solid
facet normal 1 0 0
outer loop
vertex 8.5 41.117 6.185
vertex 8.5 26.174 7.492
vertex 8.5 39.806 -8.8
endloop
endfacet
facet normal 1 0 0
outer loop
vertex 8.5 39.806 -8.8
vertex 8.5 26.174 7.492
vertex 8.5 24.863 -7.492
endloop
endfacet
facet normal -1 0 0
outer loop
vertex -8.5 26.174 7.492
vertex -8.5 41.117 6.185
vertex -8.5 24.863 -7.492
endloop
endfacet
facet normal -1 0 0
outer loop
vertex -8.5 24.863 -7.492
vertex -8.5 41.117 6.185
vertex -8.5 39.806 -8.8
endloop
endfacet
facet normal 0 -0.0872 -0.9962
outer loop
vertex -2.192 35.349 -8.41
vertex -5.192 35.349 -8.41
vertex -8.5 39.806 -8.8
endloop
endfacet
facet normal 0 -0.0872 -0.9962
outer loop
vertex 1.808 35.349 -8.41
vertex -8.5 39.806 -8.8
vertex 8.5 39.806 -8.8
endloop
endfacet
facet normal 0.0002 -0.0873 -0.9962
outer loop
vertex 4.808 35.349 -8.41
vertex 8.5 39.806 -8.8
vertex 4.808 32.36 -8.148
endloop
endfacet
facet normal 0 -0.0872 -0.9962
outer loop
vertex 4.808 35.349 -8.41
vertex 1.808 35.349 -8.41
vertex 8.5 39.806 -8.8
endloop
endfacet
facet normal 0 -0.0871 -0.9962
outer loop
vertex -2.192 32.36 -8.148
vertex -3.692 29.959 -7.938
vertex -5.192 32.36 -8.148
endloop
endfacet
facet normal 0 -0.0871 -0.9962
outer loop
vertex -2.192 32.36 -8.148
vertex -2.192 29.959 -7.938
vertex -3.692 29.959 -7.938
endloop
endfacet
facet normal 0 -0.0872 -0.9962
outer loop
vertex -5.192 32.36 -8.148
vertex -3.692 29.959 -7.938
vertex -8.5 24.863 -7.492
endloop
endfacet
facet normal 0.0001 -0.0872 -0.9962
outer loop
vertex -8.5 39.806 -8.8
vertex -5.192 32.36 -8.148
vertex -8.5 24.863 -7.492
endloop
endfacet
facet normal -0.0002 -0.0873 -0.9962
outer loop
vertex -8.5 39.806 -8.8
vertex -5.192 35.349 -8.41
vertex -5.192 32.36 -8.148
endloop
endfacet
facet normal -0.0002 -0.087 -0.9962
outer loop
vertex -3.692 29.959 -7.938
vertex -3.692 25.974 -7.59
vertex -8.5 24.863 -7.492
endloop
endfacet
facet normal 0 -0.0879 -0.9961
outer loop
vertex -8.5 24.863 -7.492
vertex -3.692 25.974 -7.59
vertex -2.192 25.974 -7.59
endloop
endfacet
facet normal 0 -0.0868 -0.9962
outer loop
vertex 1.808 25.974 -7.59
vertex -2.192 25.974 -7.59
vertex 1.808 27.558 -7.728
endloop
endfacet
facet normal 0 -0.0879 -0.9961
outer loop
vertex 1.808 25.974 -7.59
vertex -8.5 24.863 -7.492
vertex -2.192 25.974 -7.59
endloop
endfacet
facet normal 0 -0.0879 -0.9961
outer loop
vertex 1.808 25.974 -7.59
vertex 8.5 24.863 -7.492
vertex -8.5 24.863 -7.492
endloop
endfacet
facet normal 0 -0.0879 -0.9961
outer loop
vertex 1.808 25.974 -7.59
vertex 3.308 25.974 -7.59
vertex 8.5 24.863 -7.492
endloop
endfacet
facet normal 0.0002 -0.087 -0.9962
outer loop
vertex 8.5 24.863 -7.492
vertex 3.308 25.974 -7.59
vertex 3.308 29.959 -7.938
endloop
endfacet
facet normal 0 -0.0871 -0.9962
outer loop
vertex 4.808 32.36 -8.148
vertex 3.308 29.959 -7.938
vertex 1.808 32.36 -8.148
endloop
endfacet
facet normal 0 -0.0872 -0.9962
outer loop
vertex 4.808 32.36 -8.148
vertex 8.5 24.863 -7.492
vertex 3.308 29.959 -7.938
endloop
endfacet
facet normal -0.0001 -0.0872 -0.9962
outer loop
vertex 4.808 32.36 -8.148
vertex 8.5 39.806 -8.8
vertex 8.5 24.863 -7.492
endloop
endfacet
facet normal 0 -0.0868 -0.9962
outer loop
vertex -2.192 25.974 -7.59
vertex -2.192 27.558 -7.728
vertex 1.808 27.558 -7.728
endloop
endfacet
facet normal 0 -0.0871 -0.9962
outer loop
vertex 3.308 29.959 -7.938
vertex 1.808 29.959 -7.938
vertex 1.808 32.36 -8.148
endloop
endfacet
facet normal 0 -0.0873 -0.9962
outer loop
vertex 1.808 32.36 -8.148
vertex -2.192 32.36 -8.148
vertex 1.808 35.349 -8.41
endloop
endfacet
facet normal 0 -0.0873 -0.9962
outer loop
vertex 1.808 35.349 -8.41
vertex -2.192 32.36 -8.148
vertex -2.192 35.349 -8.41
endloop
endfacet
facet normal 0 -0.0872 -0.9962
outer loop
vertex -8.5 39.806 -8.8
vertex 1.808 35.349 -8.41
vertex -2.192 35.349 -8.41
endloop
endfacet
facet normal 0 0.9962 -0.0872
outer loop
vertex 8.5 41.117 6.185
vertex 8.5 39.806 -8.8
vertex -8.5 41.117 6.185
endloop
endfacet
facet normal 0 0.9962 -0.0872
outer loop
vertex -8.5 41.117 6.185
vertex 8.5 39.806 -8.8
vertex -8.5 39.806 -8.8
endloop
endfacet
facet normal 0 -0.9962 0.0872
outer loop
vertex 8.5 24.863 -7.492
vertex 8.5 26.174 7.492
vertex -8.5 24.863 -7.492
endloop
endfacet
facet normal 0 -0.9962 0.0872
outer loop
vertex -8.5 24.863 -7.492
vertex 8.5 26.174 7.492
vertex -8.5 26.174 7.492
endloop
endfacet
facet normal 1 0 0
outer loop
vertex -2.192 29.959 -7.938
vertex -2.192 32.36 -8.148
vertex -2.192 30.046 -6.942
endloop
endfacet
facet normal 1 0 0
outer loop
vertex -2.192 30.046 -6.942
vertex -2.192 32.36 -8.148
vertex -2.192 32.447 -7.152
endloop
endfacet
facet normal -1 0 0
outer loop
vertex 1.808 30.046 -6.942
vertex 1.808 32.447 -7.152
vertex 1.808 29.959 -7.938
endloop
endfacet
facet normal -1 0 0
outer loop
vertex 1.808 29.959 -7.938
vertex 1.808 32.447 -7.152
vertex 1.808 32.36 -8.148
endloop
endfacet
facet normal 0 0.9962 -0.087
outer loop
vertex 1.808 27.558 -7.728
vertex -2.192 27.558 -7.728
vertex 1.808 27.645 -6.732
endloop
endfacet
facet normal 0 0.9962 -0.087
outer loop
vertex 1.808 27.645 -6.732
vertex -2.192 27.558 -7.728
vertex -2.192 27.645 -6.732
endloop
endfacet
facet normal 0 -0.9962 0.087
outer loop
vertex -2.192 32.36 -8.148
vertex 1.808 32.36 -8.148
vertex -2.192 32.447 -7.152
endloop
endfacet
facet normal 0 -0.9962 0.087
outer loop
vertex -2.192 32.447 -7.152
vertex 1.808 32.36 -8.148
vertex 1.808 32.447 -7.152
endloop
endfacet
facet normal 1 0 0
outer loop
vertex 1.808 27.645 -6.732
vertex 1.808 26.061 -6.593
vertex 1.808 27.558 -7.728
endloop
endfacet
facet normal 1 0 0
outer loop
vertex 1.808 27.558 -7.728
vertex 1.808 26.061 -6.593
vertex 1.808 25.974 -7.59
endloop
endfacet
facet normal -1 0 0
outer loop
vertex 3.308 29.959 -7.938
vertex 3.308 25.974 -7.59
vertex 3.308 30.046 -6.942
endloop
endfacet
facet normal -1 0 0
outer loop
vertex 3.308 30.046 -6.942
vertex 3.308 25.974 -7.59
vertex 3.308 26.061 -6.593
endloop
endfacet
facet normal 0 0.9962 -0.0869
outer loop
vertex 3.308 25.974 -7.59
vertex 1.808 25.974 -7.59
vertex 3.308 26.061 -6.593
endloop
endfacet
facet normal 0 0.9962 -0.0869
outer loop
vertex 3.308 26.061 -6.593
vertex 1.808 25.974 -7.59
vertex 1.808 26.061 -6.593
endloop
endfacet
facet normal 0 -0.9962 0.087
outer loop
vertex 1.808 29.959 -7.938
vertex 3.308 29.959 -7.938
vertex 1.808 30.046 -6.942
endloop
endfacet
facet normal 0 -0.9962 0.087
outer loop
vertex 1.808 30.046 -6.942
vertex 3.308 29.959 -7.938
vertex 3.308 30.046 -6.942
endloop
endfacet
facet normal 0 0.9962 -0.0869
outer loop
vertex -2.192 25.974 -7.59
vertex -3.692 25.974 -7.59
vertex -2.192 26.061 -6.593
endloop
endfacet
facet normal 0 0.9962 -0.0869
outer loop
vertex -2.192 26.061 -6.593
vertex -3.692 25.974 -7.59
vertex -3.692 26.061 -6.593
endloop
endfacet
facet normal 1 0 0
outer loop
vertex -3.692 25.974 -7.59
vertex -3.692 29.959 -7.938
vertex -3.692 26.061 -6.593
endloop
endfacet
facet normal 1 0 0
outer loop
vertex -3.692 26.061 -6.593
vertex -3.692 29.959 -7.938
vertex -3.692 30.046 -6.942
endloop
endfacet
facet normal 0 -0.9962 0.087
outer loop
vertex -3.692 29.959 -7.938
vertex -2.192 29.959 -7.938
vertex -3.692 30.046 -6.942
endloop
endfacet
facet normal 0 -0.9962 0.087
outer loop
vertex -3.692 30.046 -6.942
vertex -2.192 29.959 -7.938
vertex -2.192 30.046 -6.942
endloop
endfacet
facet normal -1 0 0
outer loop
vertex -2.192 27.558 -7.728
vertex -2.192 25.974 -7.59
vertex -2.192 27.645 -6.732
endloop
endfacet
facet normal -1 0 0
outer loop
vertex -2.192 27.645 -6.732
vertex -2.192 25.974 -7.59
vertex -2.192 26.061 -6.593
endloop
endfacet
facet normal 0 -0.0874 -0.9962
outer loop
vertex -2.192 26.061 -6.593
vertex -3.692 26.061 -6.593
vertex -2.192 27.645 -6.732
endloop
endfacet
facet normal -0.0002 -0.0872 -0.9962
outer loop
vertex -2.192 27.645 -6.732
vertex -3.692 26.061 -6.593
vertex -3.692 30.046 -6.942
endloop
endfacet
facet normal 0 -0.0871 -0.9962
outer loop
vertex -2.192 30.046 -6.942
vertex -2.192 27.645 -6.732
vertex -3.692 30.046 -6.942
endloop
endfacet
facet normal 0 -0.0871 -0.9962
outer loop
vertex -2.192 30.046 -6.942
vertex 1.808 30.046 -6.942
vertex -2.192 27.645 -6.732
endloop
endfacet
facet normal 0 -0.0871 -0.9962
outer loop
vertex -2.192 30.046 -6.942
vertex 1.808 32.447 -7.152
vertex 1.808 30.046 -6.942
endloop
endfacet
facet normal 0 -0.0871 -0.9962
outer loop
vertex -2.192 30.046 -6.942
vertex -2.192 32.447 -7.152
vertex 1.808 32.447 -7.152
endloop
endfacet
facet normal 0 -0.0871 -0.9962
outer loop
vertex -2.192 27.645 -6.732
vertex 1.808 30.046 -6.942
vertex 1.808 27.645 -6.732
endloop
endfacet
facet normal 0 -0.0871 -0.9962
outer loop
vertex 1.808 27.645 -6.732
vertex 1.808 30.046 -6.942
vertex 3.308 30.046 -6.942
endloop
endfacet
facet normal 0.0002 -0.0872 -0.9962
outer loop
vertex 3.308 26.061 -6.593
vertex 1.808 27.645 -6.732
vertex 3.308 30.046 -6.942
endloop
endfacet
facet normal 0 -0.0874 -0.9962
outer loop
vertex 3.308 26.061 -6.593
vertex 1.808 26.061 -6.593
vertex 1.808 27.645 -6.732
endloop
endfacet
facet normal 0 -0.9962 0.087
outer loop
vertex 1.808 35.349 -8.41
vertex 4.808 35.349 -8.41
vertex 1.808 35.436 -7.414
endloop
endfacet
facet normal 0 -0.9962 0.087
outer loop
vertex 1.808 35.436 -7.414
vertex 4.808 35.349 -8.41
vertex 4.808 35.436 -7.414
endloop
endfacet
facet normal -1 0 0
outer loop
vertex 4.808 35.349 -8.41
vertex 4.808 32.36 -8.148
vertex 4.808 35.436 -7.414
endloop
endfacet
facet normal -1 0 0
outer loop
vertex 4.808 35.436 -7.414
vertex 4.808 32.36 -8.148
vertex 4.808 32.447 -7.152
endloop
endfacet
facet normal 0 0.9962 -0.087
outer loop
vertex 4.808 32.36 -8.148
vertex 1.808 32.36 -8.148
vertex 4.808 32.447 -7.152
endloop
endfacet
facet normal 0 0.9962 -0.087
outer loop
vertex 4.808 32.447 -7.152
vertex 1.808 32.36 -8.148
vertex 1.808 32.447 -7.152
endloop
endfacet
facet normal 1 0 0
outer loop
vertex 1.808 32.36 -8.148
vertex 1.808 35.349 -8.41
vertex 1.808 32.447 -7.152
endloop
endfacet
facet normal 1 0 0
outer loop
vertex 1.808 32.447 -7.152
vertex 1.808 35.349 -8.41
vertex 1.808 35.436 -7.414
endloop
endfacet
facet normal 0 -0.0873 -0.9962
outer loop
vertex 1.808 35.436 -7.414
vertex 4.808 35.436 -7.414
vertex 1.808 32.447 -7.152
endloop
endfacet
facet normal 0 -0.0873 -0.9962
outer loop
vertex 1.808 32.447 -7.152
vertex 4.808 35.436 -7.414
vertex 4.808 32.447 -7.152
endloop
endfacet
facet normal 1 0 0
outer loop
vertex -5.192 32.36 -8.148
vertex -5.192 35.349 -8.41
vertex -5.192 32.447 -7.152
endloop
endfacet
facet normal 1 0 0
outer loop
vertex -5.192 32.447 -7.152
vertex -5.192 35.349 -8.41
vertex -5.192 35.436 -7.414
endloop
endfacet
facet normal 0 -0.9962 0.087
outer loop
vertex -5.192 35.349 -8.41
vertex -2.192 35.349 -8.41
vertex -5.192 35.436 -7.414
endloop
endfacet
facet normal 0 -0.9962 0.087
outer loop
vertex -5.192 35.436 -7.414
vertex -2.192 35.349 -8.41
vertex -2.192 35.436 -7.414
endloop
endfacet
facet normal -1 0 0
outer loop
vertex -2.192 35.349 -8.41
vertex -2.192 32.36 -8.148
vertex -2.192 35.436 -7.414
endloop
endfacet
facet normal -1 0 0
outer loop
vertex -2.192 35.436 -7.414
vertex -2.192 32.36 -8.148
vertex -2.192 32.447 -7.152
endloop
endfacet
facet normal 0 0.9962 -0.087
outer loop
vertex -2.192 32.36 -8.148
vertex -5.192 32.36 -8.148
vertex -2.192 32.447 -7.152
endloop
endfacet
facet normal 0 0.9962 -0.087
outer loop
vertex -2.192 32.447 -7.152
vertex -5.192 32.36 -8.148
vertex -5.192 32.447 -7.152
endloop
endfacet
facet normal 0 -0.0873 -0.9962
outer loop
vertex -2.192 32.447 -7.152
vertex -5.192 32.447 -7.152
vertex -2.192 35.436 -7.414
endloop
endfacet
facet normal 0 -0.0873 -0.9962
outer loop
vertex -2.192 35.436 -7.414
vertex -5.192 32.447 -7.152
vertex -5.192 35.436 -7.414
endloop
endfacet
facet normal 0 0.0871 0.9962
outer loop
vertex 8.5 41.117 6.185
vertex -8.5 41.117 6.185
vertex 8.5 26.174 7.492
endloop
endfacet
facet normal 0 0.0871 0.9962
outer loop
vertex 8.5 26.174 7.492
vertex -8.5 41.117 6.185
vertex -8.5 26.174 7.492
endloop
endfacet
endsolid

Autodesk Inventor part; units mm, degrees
ref_plane "YZ Plane" through (0, 0, 0) normal (1, 0, 0) x (0, 1, 0)
ref_plane "XZ Plane" through (0, 0, 0) normal (0, 1, 0) x (-1, 0, 0)
ref_plane "XY Plane" through (0, 0, 0) normal (0, 0, 1) x (1, 0, 0)
sketch "スケッチ1" plane through (0, 0, 0) normal (0, 1, 0) x (-1, 0, 0)
  line L0 (-7.5, -10) -> (7.5, -10)
  line L1 (7.5, -10) -> (7.5, 10)
  line L2 (7.5, 10) -> (-7.5, 10)
  line L3 (-7.5, 10) -> (-7.5, -10)
  line L4 (-7.5, -10) -> (7.5, 10) construction
  line L5 (7.5, -10) -> (-7.5, 10) construction
  line L6 (-7.5, 10) -> (7.5, 10)
  line L7 (7.5, 10) -> (7.5, 4)
  line L8 (7.5, 4) -> (-7.5, 4)
  line L9 (-7.5, 4) -> (-7.5, 10)
  line L10 (-7.5, -10) -> (7.5, -10)
  line L11 (7.5, -10) -> (7.5, -4)
  line L12 (7.5, -4) -> (-7.5, -4)
  line L13 (-7.5, -4) -> (-7.5, -10)
  point P0 (0, 0)
  dimension "d0" = 15
  dimension "d1" = 20
  dimension "d2" = 6
  dimension "d3" = 6
extrude "押し出し1" add sketch "スケッチ1" along normal blind 6 contours L3 L12 L1 L0 | L3 L2 L1 L8
sketch "スケッチ2" plane through (0, 6, 0) normal (0, 1, 0) x (1, 0, 0)
  line L0 (7.5, 10) -> (-7.5, 10) projected
  line L1 (-7.5, 10) -> (-7.5, 4) projected
  line L2 (-7.5, 4) -> (7.5, 4) projected
  line L3 (7.5, 4) -> (7.5, 10) projected
  line L4 (-7.5, -5.5) -> (7.5, -5.5)
  line L5 (7.5, -5.5) -> (7.5, 5.5)
  line L6 (7.5, 5.5) -> (-7.5, 5.5)
  line L7 (-7.5, 5.5) -> (-7.5, -5.5)
  line L8 (-7.5, -5.5) -> (7.5, 5.5) construction
  line L9 (7.5, -5.5) -> (-7.5, 5.5) construction
  point P0 (0, 0)
  dimension "d6" = 11
extrude "押し出し2" add sketch "スケッチ2" along normal blind 20 contours L3 L2 L1 L6 | L5 L4 L7 L2
sketch "スケッチ3" plane through (7.5, 0, -4) normal (1, 0, 0) x (0, 0, -1)
  line L0 (1.5, 6) -> (1.5, 26) projected
  line L1 (-9.5, 26) -> (1.5, 26) projected
  line L2 (-9.5, 26) -> (1.5, 25.0376)
  point P0 (-4, 0)
  dimension "d9" = 5
extrude "押し出し3" cut sketch "スケッチ3" against normal blind 20
sketch "スケッチ4" plane through (-7.5, 26, 5.5) normal (0, 0.9961947, -0.0871557) x (1, 0, 0)
  line L0 (0, 0) -> (0, 11.042) projected
  line L1 (0, 0) -> (15, 0) projected
  line L2 (15, 11.042) -> (15, 0) projected
  line L3 (0, 11.042) -> (15, 11.042) projected
  line L4 (-2, 13.042) -> (17, 13.042)
  line L5 (17, 13.042) -> (17, -2)
  line L6 (17, -2) -> (-2, -2)
  line L7 (-2, -2) -> (-2, 13.042)
  point P0 (7.5, 7.7451)
  dimension "d12" = 2
  dimension "d13" = 2
  dimension "d14" = 2
  dimension "d15" = 2
extrude "押し出し4" add sketch "スケッチ4" along normal blind 15 contours L0 L3 L2 L1 | L4 L5 L6 L7
sketch "スケッチ5" plane through (9.5, 24.8633, -7.4924) normal (0, -0.0871557, -0.9961947) x (-1, 0, 0)
  line L0 (19, 0) -> (0, 0) projected
  line L1 (11.6915, 7.5253) -> (11.6915, 2.7045)
  line L2 (11.6915, 2.7045) -> (7.6915, 2.7045)
  line L3 (7.6915, 2.7045) -> (7.6915, 7.5253)
  line L4 (9.6915, 7.5253) -> (11.6915, 2.7045) construction
  line L5 (9.6915, 7.5253) -> (7.6915, 2.7045) construction
  line L6 (7.6915, 7.5253) -> (11.6915, 7.5253)
  line L7 (11.6915, 5.1149) -> (13.1915, 5.1149)
  line L8 (13.1915, 5.1149) -> (13.1915, 1.1149)
  line L9 (13.1915, 1.1149) -> (11.6915, 1.1149)
  line L10 (11.6915, 1.1149) -> (11.6915, 5.1149)
  line L11 (7.6915, 5.1149) -> (6.1915, 5.1149)
  line L12 (6.1915, 5.1149) -> (6.1915, 1.1149)
  line L13 (6.1915, 1.1149) -> (7.6915, 1.1149)
  line L14 (7.6915, 1.1149) -> (7.6915, 5.1149)
  line L15 (11.6915, 7.5253) -> (14.6915, 7.5253)
  line L16 (14.6915, 7.5253) -> (14.6915, 10.5253)
  line L17 (14.6915, 10.5253) -> (11.6915, 10.5253)
  line L18 (11.6915, 10.5253) -> (11.6915, 7.5253)
  line L19 (7.6915, 7.5253) -> (4.6915, 7.5253)
  line L20 (4.6915, 7.5253) -> (4.6915, 10.5253)
  line L21 (4.6915, 10.5253) -> (7.6915, 10.5253)
  line L22 (7.6915, 10.5253) -> (7.6915, 7.5253)
  point P0 (9.5, -25.4217)
  dimension "d18" = 4
  dimension "d19" = 1.5
  dimension "d20" = 4
  dimension "d21" = 1.5
  dimension "d22" = 3
  dimension "d23" = 3
  dimension "d24" = 3
  dimension "d25" = 2.7045
extrude "押し出し5" cut sketch "スケッチ5" against normal blind 1
sketch "スケッチ6" plane through (7.5, 0, 10) normal (1, 0, 0) x (0, 0, -1)
  line L0 (4.5, 6) -> (4.5, 26) projected
  line L1 (0, 6) -> (4.5, 6) projected
  line L2 (0, 0) -> (0, 6) projected
  line L3 (0, 0) -> (6, 0) projected
  line L4 (6, 0) -> (6, 6) projected
  line L5 (6, 6) -> (14, 6) projected
  line L6 (14, 0) -> (14, 6) projected
  line L7 (14, 0) -> (20, 0) projected
  line L8 (20, 0) -> (20, 6) projected
  line L9 (15.5, 6) -> (20, 6) projected
  line L10 (15.5, 6) -> (15.5, 25.0376) projected
  line L11 (15.5, 25.0376) -> (4.5, 25.0376)
  point P0 (10, 0)
extrude "押し出し6" cut sketch "スケッチ6" against normal blind 100
sketch "スケッチ7" plane through (-7.5, 25.0376, 5.5) normal (-1, 0, 0) x (0, 0, 1)
  line L0 (-11, 0) -> (0, 0) projected
  line L1 (0, 0) -> (0, 0.9624) projected
  line L2 (0, 0.9624) -> (-11, 0) projected
  point P0 (-5.5, -25.0376)
extrude "押し出し7" cut sketch "スケッチ7" against normal blind 100
sketch "スケッチ8" plane through (9.5, 24.8633, -7.4924) normal (0, -0.0871557, -0.9961947) x (-1, 0, 0)
  line L0 (19, 0) -> (0, 0) projected
  line L1 (19, 0) -> (19, 15) projected
  line L2 (0, 15) -> (19, 15) projected
  line L3 (0, 0) -> (0, 15) projected
  line L4 (1, 15) -> (1, 0)
  line L5 (18, 15) -> (18, 0)
  point P0 (9.5, -25.4217)
  dimension "d32" = 1
  dimension "d33" = 1
extrude "押し出し8" cut sketch "スケッチ8" against normal blind 100 contours L0 L5 L2 L1 | L0 L3 L2 L4
